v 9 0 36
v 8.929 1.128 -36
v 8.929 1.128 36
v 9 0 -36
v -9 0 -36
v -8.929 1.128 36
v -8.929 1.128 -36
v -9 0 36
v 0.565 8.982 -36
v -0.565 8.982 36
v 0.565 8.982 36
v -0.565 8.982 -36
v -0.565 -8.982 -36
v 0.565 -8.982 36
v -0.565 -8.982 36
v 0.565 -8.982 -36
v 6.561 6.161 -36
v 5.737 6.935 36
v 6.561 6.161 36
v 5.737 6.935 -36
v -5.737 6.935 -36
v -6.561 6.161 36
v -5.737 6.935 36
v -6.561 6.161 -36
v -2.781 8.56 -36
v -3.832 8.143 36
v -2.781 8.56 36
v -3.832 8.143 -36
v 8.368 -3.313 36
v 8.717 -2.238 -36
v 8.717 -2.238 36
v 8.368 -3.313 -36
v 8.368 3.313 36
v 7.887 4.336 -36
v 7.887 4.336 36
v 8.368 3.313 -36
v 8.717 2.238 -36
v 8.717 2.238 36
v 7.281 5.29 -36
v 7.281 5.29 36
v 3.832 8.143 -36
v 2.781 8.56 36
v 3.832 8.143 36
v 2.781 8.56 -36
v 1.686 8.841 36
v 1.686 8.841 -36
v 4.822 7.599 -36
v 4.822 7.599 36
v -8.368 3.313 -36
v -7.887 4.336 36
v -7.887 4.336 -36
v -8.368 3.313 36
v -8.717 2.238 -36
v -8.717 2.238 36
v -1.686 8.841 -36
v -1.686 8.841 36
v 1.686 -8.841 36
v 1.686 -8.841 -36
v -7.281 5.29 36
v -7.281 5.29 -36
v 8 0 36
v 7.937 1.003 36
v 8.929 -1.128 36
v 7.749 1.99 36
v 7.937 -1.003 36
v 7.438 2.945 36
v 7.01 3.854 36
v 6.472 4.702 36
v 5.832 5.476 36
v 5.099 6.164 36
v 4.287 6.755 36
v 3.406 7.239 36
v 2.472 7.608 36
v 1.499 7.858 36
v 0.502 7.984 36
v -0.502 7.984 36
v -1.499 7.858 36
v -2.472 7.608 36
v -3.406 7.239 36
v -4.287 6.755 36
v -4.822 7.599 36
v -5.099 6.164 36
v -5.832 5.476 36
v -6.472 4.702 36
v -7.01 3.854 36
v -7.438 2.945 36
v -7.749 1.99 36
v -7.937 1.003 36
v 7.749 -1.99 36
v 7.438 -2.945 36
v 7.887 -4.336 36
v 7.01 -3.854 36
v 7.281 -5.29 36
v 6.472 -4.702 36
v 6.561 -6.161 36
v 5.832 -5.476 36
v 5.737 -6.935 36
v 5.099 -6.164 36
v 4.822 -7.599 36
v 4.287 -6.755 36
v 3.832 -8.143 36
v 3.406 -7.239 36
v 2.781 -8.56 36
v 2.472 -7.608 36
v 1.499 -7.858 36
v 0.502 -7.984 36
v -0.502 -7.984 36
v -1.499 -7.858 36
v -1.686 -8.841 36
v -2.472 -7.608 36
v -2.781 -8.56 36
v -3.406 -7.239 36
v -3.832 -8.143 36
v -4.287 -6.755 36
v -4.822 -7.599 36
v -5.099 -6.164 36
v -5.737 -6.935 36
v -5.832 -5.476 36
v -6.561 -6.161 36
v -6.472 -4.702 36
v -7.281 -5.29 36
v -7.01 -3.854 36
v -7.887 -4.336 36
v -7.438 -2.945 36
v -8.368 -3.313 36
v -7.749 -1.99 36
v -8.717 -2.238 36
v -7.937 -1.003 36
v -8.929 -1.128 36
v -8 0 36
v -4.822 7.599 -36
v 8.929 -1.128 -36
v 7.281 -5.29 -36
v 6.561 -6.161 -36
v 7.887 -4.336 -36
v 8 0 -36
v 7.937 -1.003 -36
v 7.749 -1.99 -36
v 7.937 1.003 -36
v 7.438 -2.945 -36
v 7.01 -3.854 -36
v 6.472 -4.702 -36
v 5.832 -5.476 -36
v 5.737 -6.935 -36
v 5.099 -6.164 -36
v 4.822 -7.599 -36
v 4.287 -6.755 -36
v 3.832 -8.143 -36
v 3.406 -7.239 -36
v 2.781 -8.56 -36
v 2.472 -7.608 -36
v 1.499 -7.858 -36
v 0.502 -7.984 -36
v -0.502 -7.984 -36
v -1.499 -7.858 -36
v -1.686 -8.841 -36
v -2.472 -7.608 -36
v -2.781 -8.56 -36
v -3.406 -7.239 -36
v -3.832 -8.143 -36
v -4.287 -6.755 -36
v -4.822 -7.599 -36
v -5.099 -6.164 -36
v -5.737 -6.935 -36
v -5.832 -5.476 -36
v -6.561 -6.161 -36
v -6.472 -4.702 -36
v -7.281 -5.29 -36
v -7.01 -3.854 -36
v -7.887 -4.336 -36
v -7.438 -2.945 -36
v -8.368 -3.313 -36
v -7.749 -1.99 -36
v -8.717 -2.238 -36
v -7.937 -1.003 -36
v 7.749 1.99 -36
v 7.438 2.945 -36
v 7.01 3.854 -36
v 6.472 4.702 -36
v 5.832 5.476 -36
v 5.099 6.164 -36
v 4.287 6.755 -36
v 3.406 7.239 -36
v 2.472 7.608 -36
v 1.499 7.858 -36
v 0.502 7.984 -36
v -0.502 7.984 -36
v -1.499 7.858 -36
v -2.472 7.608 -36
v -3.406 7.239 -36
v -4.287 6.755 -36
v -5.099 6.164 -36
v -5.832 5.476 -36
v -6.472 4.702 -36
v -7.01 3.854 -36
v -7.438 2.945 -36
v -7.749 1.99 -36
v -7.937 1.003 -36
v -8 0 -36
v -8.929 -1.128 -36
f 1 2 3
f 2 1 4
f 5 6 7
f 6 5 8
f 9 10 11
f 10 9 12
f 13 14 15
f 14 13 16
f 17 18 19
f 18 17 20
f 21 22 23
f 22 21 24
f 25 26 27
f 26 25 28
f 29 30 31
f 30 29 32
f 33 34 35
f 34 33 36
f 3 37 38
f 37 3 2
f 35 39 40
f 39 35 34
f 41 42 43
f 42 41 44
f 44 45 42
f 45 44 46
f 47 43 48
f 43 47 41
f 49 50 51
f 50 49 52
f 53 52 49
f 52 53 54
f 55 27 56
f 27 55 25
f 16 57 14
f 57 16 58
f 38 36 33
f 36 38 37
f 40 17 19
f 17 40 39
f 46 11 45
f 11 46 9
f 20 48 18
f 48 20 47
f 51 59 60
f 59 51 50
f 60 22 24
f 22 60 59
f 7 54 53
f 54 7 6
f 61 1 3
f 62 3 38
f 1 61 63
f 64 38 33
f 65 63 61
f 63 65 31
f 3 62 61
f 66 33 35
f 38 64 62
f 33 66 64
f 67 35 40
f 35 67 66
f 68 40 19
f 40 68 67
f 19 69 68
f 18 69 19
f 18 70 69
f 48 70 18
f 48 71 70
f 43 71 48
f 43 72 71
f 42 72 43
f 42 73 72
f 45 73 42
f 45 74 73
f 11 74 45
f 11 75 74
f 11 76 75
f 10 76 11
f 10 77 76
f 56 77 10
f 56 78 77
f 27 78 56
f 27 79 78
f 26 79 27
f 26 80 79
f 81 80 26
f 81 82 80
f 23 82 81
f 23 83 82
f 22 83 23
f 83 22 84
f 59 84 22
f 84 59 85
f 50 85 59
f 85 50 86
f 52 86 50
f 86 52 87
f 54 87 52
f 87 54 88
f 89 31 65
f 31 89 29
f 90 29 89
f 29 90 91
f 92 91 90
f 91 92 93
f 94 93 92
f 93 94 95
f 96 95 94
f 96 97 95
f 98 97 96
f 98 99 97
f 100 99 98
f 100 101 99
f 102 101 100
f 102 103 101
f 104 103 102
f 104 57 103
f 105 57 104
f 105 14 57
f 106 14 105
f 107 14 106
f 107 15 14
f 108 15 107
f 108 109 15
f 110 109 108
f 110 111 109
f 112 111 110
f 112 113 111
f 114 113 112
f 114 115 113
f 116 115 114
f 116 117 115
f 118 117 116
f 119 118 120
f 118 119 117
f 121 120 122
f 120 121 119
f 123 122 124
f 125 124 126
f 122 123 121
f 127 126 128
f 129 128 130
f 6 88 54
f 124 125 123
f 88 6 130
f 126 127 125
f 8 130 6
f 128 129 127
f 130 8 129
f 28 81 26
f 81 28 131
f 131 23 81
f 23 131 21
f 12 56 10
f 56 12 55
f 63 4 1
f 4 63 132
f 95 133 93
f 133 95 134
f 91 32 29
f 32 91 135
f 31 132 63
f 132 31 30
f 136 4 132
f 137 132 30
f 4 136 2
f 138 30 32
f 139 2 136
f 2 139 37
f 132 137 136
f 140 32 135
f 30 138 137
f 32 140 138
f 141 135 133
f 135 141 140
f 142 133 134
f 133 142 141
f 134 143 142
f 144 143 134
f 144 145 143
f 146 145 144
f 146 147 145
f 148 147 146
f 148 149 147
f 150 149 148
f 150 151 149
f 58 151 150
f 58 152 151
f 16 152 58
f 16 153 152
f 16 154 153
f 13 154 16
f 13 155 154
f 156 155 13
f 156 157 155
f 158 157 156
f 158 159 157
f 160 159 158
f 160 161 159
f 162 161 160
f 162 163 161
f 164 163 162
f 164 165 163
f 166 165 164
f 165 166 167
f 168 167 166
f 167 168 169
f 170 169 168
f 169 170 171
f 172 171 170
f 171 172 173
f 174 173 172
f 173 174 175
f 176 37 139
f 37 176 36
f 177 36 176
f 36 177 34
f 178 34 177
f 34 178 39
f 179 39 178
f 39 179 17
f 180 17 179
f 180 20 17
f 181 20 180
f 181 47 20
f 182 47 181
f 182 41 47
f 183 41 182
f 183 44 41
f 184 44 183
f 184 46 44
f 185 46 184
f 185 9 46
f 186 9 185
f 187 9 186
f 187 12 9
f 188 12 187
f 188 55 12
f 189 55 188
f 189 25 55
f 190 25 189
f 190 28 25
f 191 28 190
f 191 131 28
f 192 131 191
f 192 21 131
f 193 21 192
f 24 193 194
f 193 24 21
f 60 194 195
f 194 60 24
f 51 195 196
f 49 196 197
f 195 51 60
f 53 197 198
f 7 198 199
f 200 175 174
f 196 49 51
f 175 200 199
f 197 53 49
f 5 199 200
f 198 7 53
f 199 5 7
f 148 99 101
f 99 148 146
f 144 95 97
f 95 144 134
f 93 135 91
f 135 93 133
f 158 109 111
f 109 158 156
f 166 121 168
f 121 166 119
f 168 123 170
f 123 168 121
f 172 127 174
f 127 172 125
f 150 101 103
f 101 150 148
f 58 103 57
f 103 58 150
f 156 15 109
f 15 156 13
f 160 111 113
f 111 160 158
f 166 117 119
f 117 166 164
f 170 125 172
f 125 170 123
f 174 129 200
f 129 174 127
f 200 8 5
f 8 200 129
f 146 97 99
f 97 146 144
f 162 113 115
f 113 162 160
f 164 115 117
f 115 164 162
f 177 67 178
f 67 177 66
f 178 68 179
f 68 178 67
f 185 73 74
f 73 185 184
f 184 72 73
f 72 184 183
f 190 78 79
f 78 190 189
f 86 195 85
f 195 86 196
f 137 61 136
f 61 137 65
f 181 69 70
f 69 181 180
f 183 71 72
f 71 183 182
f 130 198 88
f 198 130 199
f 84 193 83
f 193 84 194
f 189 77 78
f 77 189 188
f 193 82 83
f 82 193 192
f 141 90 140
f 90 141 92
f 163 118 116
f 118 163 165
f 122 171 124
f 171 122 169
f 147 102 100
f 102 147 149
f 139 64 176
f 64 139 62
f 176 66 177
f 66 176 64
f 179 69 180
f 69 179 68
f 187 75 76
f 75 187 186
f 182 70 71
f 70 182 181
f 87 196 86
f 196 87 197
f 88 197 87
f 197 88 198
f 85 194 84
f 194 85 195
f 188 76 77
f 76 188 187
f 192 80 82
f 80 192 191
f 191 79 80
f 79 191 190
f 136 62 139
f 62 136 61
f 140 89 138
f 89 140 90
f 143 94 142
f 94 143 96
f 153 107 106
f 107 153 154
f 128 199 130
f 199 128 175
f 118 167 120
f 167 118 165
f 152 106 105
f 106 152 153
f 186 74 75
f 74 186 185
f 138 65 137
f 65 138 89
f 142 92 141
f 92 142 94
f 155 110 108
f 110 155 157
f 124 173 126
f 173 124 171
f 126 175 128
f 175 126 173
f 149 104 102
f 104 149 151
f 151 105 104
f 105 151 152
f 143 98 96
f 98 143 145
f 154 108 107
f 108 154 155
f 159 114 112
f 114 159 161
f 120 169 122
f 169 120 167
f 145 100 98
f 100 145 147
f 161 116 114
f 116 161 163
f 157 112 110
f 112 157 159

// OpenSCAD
$fn = 50;


difference() {
	union() {
		translate(v = [0, 0, -36.0000000000]) {
			cylinder(h = 72, r = 9.0000000000);
		}
	}
	union() {
		translate(v = [0, 0, -100.0000000000]) {
			cylinder(h = 200, r = 8);
		}
	}
}
